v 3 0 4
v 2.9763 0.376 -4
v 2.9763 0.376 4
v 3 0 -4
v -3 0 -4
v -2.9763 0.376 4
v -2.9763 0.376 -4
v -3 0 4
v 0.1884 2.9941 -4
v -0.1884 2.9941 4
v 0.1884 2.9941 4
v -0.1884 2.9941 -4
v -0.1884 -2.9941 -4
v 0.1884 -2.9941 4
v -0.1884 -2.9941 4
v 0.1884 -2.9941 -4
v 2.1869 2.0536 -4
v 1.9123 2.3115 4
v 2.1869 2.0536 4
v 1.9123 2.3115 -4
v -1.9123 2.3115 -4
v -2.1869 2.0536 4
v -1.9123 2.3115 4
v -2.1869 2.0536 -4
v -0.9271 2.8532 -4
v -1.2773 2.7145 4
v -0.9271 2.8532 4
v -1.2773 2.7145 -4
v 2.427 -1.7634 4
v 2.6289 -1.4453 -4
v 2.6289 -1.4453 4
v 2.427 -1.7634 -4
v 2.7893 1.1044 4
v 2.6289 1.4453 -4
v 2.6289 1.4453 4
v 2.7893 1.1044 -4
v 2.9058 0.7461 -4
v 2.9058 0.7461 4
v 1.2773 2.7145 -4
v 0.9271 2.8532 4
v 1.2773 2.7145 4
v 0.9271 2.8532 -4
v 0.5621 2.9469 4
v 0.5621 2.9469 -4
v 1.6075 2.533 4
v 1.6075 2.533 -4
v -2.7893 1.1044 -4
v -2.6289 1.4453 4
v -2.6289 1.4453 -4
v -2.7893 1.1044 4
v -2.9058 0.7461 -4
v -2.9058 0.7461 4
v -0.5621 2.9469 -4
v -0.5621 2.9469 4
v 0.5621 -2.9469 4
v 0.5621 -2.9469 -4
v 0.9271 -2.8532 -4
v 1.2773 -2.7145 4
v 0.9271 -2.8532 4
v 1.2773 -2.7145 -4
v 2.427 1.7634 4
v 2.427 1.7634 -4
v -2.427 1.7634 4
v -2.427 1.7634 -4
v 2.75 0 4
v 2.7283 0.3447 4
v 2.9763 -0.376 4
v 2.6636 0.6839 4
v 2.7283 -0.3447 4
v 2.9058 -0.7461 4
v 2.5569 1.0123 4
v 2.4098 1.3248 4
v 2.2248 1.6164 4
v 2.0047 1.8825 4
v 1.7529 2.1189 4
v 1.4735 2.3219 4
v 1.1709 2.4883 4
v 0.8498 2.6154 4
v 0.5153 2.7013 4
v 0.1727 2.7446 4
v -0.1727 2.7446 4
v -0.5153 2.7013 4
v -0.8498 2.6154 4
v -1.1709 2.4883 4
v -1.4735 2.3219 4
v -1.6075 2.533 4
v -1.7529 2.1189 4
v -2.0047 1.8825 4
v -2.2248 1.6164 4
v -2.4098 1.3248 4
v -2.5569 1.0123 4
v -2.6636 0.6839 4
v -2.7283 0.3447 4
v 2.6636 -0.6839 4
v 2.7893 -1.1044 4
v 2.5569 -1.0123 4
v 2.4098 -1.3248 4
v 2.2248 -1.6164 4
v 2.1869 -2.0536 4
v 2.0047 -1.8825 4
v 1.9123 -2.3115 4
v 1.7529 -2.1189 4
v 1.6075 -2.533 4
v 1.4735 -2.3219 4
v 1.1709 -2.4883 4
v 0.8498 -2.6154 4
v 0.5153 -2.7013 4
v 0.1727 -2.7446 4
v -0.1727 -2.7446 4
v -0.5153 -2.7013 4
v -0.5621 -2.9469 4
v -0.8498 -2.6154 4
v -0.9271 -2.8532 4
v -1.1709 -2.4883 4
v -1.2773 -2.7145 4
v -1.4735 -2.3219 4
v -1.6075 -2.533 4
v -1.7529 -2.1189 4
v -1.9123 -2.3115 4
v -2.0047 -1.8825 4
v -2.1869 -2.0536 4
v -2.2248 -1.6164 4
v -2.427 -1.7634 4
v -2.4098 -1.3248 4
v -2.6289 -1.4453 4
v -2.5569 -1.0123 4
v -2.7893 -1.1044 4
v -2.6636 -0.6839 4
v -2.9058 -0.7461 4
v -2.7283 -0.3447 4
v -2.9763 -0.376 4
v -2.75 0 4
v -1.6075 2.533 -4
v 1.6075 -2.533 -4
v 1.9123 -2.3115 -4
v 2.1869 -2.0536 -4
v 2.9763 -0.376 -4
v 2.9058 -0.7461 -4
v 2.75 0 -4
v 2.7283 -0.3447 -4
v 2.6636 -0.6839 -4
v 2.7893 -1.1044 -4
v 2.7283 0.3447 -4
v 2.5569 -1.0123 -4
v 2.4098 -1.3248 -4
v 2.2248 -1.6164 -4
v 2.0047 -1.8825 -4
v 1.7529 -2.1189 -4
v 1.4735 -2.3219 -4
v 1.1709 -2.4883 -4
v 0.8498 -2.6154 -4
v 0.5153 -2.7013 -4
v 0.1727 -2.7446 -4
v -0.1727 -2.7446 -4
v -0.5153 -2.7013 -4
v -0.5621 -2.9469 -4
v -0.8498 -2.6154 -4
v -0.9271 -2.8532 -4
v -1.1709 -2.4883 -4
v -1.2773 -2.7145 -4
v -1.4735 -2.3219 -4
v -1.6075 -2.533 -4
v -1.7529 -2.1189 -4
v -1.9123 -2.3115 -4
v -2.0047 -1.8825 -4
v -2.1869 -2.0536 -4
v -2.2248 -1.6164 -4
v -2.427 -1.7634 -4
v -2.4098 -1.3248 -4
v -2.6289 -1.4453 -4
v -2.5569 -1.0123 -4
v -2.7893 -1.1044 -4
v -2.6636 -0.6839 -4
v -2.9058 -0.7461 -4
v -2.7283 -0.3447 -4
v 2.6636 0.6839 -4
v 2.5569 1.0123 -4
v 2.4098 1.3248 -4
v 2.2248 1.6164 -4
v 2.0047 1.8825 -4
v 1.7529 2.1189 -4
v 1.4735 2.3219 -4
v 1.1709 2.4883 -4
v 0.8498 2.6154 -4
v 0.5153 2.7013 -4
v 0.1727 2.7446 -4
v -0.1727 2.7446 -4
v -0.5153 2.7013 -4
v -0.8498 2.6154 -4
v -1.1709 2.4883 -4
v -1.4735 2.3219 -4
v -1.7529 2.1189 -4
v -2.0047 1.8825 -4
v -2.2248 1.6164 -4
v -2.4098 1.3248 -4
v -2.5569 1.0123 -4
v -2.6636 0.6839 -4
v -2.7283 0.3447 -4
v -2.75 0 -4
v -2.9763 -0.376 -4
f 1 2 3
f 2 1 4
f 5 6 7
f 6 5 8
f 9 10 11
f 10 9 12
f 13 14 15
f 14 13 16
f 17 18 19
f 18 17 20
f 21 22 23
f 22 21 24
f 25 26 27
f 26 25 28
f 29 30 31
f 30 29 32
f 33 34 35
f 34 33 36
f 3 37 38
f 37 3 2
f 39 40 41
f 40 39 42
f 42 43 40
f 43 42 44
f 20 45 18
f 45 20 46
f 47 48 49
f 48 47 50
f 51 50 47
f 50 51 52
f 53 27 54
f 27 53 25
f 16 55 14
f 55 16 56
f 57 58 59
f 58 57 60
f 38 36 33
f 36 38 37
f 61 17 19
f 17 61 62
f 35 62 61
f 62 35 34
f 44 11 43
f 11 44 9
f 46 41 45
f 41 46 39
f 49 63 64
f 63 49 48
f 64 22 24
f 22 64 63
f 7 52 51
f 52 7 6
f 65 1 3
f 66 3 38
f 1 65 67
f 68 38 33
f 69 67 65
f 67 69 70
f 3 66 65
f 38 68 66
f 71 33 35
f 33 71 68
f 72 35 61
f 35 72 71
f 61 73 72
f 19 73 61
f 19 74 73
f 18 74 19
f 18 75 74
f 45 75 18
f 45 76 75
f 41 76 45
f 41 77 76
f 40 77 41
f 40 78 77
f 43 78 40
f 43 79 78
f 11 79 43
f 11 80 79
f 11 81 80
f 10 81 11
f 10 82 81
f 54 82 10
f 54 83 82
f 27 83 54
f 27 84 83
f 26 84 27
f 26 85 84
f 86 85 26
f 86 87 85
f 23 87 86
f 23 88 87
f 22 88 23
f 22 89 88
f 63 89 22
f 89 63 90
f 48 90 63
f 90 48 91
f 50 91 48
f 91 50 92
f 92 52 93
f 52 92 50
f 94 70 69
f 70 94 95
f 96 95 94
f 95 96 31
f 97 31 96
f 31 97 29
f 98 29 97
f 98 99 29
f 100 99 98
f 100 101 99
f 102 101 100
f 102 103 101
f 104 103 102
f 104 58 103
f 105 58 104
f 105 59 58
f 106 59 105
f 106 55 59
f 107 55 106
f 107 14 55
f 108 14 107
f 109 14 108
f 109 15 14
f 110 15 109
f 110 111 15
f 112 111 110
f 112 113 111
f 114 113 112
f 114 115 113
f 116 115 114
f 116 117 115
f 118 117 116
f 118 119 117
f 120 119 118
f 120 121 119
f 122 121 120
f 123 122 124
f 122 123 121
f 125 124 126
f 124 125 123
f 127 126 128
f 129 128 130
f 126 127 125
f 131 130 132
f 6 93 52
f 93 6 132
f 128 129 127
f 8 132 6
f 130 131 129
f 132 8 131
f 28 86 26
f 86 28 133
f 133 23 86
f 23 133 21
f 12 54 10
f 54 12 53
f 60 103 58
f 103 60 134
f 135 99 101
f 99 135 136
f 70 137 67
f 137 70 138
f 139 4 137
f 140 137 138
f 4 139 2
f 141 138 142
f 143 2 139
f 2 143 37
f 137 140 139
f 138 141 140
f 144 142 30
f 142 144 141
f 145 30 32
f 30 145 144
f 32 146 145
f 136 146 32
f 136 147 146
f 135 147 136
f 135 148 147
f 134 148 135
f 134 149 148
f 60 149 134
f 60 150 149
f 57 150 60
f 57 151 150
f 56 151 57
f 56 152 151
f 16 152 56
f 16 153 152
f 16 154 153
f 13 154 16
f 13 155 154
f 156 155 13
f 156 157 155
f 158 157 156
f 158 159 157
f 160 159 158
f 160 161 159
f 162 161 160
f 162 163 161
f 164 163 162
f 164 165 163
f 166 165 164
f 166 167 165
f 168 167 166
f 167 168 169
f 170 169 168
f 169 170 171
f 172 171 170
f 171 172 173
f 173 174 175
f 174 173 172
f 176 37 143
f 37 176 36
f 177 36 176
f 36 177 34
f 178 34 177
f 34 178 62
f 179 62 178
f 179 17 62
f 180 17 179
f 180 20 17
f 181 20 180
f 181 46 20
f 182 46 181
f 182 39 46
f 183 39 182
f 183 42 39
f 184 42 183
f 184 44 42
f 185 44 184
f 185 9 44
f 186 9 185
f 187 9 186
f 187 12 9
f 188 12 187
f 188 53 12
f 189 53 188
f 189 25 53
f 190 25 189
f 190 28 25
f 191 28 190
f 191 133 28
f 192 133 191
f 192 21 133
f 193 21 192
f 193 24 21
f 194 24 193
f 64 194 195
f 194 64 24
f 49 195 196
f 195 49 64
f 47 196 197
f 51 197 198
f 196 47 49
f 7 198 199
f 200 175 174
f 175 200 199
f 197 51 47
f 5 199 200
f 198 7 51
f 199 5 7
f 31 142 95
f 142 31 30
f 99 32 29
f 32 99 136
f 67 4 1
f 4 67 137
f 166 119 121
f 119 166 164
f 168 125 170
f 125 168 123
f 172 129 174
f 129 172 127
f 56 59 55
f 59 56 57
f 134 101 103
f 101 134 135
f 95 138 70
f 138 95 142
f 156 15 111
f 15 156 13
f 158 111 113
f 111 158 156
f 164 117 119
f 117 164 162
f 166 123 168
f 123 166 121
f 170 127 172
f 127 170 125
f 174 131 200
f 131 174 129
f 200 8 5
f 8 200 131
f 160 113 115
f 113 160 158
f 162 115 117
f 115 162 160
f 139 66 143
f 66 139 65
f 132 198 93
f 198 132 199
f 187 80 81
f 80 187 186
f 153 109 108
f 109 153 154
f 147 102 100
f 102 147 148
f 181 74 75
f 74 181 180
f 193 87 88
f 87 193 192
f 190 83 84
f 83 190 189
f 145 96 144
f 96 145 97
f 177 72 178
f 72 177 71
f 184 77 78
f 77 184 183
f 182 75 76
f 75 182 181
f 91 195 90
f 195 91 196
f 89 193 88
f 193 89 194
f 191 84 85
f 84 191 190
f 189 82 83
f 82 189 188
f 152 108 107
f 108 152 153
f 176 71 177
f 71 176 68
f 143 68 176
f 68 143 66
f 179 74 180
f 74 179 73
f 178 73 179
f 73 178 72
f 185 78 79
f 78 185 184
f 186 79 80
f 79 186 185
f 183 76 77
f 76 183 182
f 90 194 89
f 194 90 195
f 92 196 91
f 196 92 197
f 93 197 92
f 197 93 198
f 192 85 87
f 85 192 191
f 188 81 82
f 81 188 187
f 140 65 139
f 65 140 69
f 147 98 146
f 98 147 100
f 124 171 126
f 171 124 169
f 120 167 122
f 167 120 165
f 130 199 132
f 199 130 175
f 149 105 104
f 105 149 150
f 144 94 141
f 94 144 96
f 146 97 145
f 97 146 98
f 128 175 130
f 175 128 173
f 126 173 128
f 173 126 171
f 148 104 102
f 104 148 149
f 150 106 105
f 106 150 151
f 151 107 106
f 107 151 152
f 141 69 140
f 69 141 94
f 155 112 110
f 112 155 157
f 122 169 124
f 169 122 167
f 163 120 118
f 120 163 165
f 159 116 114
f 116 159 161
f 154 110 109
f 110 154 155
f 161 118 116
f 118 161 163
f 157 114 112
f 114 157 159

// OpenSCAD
$fn = 50;


difference() {
	union() {
		translate(v = [0, 0, -4.0000000000]) {
			cylinder(h = 8, r = 3.0000000000);
		}
	}
	union() {
		translate(v = [0, 0, -100.0000000000]) {
			cylinder(h = 200, r = 2.7500000000);
		}
	}
}
